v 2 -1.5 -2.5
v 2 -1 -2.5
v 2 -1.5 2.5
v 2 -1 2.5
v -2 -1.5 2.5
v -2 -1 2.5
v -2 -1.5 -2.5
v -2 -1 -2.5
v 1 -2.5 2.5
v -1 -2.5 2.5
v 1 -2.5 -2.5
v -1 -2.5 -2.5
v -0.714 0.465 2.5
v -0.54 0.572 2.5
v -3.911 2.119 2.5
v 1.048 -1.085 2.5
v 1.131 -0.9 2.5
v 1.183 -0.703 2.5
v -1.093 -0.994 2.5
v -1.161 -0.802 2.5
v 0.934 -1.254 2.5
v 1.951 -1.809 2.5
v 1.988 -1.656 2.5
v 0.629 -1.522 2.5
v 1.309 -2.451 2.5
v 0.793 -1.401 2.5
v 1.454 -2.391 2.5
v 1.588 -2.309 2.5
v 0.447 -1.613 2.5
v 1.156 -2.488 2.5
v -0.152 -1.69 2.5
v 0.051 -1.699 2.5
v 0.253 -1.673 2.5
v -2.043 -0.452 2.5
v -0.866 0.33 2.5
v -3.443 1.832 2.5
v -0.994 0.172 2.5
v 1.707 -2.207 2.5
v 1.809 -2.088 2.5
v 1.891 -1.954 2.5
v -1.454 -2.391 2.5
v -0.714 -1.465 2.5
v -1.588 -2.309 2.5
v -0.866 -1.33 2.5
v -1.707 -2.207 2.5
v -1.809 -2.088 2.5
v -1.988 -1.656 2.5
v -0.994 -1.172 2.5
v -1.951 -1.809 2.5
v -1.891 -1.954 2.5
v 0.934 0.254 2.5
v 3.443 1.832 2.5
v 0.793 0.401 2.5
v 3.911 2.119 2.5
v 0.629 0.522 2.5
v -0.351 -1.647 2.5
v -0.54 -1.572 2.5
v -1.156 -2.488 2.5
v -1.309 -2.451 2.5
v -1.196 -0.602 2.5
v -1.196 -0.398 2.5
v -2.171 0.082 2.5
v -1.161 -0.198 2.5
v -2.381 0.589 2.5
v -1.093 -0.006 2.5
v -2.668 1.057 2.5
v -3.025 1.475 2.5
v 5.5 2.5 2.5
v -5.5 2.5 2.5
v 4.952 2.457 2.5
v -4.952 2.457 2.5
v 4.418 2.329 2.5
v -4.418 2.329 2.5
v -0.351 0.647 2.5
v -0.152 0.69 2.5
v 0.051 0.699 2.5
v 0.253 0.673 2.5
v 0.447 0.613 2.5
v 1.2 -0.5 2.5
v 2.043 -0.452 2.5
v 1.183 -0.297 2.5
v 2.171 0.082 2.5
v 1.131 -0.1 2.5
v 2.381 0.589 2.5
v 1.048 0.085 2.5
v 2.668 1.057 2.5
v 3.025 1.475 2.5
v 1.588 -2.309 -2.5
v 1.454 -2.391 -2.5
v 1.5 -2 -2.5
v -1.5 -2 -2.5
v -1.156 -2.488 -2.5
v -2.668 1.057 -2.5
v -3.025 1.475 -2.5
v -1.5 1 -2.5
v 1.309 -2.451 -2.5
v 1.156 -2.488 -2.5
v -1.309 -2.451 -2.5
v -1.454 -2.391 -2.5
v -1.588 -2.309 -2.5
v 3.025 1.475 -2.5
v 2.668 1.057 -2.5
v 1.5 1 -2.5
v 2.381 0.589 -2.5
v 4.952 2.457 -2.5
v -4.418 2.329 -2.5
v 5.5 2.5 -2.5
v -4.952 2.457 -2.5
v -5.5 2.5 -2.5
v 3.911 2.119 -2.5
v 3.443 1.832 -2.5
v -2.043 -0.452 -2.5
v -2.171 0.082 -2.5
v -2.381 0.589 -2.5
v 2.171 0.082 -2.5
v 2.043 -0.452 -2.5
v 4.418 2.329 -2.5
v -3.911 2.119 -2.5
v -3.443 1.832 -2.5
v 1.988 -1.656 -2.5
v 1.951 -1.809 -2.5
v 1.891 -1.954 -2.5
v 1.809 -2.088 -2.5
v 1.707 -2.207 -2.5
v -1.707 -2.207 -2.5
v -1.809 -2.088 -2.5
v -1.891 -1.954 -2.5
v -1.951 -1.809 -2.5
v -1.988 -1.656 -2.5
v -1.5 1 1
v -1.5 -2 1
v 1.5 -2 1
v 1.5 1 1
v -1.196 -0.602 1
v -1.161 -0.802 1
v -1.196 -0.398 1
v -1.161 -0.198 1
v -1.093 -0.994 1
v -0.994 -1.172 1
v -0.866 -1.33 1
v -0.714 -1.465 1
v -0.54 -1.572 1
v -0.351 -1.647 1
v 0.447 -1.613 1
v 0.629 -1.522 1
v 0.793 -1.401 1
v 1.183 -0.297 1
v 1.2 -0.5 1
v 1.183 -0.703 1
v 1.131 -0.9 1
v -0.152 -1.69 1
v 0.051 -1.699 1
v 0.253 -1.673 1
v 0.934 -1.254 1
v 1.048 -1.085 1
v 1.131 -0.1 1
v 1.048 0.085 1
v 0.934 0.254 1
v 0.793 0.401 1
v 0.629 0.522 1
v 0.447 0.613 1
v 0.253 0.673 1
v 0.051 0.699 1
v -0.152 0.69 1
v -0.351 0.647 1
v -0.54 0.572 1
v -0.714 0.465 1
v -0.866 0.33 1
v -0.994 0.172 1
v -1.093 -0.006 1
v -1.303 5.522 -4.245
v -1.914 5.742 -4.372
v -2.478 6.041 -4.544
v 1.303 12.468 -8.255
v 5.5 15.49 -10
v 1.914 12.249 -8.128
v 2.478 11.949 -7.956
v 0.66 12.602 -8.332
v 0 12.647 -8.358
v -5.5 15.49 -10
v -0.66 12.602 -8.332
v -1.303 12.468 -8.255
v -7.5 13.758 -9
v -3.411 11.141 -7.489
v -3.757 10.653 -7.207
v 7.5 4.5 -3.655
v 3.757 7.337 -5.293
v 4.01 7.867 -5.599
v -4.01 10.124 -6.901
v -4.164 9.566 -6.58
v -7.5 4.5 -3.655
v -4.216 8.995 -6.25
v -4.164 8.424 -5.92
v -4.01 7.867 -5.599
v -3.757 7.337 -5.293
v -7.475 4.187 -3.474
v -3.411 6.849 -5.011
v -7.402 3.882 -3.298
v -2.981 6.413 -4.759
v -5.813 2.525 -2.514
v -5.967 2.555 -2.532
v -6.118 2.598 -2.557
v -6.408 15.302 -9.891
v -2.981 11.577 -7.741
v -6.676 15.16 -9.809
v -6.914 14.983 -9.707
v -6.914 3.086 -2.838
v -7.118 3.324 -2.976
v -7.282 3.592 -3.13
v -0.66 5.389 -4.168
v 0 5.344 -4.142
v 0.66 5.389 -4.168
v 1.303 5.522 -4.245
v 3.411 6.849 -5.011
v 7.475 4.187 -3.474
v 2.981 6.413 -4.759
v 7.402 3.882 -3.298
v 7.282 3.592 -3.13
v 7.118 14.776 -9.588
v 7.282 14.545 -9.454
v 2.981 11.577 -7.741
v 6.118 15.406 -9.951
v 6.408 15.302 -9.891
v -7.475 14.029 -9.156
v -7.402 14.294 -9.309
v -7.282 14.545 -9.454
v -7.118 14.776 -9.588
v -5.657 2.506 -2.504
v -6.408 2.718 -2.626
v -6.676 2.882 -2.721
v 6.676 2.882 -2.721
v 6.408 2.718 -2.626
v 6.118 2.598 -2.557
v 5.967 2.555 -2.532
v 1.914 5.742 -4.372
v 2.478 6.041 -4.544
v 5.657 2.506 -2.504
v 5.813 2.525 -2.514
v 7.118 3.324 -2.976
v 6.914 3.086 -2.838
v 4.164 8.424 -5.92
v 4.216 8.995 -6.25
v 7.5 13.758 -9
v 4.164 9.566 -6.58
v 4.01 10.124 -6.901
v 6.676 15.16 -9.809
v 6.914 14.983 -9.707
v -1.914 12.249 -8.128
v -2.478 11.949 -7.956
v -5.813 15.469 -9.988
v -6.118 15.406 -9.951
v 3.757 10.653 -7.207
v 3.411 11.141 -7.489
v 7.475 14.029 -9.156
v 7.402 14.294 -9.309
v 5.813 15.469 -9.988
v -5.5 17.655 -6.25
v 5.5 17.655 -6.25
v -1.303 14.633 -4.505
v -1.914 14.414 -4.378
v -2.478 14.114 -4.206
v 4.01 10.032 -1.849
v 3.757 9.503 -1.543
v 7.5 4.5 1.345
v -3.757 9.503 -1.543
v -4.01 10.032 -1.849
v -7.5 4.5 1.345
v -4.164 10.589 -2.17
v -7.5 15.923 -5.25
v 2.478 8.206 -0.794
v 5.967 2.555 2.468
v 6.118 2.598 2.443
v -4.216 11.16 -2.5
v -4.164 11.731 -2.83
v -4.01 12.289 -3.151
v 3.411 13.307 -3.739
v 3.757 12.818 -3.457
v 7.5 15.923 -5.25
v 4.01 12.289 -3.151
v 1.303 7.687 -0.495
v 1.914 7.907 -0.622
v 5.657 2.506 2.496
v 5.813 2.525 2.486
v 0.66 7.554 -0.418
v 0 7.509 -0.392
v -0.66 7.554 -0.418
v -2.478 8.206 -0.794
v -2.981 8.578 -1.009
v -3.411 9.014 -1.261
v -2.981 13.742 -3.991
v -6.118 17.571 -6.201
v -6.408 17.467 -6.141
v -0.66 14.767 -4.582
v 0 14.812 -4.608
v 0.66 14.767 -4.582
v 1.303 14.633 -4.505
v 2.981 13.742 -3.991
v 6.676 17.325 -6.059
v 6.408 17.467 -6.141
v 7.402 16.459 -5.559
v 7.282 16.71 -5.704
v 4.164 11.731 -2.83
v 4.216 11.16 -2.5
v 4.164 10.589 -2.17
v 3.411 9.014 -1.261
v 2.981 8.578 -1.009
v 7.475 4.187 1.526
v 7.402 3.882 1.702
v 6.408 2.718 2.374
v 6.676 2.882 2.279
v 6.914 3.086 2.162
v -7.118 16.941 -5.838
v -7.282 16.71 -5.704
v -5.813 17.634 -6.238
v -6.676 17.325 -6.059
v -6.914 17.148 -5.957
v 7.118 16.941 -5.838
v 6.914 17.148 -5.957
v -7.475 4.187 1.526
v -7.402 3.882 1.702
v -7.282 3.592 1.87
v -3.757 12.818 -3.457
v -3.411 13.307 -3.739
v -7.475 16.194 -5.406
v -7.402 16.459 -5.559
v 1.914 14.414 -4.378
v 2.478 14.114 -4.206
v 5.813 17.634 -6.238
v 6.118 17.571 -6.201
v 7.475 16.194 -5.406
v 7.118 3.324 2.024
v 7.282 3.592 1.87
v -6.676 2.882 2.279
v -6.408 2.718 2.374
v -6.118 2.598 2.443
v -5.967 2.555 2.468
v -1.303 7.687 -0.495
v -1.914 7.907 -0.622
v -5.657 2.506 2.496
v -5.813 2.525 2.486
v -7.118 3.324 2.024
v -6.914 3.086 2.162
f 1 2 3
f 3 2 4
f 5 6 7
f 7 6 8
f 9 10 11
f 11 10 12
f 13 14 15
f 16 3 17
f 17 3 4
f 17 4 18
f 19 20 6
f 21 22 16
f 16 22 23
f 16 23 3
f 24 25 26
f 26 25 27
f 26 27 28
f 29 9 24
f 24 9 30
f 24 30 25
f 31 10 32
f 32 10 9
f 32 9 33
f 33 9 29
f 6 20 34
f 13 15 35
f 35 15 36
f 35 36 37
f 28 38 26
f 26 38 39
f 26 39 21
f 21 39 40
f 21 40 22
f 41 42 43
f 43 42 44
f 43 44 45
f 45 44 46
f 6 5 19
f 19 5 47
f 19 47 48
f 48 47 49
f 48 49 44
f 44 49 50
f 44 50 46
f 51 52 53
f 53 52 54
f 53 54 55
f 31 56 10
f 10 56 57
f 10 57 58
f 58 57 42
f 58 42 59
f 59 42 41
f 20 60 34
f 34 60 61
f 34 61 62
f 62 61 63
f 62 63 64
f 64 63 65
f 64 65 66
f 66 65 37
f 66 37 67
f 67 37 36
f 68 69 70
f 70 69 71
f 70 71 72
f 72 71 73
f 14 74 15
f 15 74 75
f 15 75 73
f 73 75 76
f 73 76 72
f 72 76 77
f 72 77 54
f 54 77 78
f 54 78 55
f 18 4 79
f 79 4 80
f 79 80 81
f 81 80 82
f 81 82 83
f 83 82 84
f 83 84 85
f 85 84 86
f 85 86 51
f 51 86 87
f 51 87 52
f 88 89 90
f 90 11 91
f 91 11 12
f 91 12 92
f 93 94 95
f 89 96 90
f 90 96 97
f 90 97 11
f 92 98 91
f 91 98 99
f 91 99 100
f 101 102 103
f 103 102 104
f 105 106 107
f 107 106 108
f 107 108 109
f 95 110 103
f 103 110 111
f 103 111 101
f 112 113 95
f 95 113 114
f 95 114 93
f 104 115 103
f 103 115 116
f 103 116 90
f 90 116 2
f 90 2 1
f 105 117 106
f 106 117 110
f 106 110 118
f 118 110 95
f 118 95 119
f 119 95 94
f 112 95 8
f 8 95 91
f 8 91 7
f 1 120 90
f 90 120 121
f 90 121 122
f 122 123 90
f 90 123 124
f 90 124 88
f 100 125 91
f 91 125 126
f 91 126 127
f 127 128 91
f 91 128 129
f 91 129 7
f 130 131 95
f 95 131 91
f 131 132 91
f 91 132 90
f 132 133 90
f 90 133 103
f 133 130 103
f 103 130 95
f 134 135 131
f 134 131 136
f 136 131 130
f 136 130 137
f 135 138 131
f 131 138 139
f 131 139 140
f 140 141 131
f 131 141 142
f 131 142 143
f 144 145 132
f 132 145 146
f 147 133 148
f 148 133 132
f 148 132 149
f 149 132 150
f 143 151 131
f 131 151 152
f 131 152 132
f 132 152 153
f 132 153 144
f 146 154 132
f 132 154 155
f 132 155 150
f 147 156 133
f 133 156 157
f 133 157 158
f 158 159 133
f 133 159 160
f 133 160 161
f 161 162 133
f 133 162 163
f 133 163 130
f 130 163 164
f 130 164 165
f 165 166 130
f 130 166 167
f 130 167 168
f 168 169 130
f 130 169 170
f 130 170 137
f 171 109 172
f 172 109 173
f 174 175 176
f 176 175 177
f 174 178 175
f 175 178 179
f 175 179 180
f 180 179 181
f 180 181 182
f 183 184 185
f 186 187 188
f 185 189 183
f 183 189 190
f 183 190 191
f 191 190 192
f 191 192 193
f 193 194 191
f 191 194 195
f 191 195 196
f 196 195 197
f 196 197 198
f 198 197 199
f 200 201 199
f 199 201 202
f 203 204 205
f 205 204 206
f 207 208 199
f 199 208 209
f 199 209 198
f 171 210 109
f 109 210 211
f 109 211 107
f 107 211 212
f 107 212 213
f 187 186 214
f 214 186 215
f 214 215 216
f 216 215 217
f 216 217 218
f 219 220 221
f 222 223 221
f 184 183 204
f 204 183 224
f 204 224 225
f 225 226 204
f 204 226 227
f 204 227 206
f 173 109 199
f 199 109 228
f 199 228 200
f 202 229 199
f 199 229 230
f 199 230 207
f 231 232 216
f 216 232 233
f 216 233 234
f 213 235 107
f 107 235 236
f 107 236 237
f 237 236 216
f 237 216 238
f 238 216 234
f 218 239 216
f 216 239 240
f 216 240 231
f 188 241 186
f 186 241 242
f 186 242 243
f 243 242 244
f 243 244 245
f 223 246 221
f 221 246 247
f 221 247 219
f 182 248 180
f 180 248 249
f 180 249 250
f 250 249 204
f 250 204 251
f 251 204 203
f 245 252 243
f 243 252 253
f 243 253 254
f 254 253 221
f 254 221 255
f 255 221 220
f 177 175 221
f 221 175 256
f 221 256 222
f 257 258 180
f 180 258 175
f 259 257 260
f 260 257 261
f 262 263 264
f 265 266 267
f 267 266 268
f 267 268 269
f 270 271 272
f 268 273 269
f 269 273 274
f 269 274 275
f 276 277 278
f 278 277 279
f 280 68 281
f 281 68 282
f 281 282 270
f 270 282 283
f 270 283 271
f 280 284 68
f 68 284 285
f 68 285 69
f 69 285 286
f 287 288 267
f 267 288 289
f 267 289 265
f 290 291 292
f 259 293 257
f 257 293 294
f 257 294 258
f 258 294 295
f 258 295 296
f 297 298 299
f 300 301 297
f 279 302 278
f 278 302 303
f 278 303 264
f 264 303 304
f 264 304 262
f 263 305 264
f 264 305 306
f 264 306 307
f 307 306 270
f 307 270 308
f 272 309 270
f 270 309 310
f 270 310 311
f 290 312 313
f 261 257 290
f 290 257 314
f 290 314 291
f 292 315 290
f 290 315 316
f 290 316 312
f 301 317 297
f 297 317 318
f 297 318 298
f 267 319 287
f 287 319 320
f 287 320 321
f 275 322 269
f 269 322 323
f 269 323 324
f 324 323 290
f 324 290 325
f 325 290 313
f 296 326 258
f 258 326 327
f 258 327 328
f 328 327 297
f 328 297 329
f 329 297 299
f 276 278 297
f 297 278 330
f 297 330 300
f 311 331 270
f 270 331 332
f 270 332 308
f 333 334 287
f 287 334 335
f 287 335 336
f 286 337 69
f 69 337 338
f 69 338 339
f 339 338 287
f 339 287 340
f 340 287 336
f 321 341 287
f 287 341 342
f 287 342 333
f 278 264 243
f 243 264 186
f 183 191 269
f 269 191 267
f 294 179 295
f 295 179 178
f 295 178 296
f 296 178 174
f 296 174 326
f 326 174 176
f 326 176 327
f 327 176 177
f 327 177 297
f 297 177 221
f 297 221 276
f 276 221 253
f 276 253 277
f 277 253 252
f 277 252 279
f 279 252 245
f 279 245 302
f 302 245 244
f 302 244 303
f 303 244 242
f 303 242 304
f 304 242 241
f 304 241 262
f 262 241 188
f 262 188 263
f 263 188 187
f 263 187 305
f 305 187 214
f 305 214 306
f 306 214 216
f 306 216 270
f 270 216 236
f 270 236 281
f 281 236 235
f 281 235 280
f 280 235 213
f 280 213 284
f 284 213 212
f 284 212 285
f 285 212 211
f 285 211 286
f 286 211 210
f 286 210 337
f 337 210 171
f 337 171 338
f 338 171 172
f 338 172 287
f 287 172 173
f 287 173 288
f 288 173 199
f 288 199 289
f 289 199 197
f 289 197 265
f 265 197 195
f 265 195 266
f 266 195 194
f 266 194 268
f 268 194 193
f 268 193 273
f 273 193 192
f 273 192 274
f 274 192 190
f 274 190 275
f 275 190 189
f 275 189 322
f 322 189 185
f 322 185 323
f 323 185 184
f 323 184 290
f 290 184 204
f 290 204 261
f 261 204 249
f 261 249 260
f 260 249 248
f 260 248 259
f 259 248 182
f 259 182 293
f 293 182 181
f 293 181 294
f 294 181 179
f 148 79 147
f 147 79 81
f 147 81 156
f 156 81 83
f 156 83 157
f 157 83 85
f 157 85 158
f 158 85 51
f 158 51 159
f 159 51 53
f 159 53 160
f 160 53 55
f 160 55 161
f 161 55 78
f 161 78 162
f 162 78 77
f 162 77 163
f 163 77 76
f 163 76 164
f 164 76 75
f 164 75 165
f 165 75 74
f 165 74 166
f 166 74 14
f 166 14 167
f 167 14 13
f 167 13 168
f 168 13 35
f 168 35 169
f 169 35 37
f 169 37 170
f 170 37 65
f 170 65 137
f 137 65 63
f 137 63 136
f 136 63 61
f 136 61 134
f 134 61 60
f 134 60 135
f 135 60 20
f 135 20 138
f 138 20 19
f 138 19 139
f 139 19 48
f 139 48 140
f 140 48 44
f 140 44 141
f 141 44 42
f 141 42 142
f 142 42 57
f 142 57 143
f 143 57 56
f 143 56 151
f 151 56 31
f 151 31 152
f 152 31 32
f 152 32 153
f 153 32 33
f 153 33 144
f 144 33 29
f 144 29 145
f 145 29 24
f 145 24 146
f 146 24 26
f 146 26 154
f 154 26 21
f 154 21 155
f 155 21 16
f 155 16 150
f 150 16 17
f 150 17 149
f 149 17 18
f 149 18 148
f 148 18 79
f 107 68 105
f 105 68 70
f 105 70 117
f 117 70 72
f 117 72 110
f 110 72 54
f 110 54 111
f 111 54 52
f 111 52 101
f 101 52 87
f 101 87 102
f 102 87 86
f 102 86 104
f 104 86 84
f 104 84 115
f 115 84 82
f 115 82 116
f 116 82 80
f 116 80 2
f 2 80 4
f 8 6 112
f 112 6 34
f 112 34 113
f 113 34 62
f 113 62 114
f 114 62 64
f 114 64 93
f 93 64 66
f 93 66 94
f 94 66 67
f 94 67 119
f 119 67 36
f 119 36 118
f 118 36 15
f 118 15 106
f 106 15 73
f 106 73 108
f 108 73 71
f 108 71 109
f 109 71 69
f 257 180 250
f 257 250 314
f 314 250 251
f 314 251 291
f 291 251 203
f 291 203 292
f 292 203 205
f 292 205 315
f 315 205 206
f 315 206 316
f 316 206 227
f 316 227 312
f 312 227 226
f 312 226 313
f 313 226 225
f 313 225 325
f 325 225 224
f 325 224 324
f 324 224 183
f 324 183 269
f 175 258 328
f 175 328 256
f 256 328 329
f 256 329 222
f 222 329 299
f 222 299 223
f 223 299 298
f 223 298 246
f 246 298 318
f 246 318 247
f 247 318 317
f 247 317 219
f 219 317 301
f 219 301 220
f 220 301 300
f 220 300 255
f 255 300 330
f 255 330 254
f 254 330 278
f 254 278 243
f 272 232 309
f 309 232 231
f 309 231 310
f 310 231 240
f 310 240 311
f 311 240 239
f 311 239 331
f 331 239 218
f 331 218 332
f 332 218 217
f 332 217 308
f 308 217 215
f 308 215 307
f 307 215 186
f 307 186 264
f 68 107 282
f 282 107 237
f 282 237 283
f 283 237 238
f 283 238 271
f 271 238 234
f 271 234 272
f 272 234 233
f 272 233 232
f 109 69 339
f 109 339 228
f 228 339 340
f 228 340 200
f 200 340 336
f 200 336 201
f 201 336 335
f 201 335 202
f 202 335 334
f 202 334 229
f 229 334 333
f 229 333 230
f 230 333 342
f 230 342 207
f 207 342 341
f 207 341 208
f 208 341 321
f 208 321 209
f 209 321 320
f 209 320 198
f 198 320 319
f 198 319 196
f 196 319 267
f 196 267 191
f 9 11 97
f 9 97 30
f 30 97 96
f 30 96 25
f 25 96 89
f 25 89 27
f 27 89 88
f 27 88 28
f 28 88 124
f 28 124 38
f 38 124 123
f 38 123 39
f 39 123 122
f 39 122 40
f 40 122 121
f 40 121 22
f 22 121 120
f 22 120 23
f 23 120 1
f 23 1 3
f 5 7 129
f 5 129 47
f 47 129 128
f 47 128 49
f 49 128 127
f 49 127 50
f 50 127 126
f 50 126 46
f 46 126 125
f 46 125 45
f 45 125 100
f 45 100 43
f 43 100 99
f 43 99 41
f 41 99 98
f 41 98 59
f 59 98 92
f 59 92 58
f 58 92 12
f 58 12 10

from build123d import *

# Parameters (mm, degrees)
SKETCH1_W                = 4
SKETCH1_H                = 5
BOSS_EXTRUDE1_DEPTH      = 2.5
SKETCH2_W                = 3
SKETCH2_H                = 3
CUT_EXTRUDE1_DEPTH       = 3.5
BOSS_EXTRUDE2_DEPTH      = 7.5
F_5_16_CLEARANCE_HOLE1_D = 8.4328
M2_CLEARANCE_HOLE1_D     = 2.4
FILLET1_R                = 3.5
FILLET2_R                = 2
FILLET3_R                = 1


with BuildPart() as part:
    # Sketch1 → Boss-Extrude1 (new, symmetric)
    with BuildSketch(Plane.XY):
        Rectangle(SKETCH1_W, SKETCH1_H)
    extrude(amount=BOSS_EXTRUDE1_DEPTH, both=True)

    # Sketch2 → Cut-Extrude1 (cut)
    with BuildSketch(Plane(origin=(0, 0, -2.5), x_dir=(-1, 0, 0), z_dir=(0, 0, -1))):
        with Locations((0, -0.5)):
            Rectangle(SKETCH2_W, SKETCH2_H)
    extrude(amount=-CUT_EXTRUDE1_DEPTH, mode=Mode.SUBTRACT)

    # Sketch3 → Boss-Extrude2 (add, symmetric)
    with BuildSketch(Plane(origin=(0, 0, 0), x_dir=(0, 0, -1), z_dir=(1, 0, 0))):
        Polygon((-2.5, 2.5), (6.25, 17.655444566), (10, 15.490381057), (2.5, 2.5), align=None)
    extrude(amount=BOSS_EXTRUDE2_DEPTH, both=True)

    # 5/16 Clearance Hole1 (through all)
    with Locations(Plane(origin=(0, -0.457531755, -0.792468245), x_dir=(-1, 0, 0), z_dir=(0, -0.5000000000000038, -0.8660254037844366))):
        with Locations((0, 10.915063509)):
            Hole(F_5_16_CLEARANCE_HOLE1_D / 2)

    # M2 Clearance Hole1 (through all)
    with Locations(Plane.XY.offset(2.5)):
        with Locations((0, -0.5)):
            Hole(M2_CLEARANCE_HOLE1_D / 2)

    # Fillet1
    fillet1_edges = [part.edges().sort_by_distance(p)[0] for p in [
        (-2, 2.5, 0),
        (2, 2.5, 0),
    ]]
    fillet(fillet1_edges, radius=FILLET1_R)

    # Fillet2
    fillet2_edges = [part.edges().sort_by_distance(p)[0] for p in [
        (-7.5, 16.572912811, -8.125),
        (7.5, 16.572912811, -8.125),
        (7.5, 2.5, 0),
        (-7.5, 2.5, 0),
    ]]
    fillet(fillet2_edges, radius=FILLET2_R - 0.0001)  # a hair under: the kernel refuses the full size

    # Fillet3
    fillet3_edges = [part.edges().sort_by_distance(p)[0] for p in [
        (2, -2.5, 0),
        (-2, -2.5, 0),
    ]]
    fillet(fillet3_edges, radius=FILLET3_R)


solid = part.part
